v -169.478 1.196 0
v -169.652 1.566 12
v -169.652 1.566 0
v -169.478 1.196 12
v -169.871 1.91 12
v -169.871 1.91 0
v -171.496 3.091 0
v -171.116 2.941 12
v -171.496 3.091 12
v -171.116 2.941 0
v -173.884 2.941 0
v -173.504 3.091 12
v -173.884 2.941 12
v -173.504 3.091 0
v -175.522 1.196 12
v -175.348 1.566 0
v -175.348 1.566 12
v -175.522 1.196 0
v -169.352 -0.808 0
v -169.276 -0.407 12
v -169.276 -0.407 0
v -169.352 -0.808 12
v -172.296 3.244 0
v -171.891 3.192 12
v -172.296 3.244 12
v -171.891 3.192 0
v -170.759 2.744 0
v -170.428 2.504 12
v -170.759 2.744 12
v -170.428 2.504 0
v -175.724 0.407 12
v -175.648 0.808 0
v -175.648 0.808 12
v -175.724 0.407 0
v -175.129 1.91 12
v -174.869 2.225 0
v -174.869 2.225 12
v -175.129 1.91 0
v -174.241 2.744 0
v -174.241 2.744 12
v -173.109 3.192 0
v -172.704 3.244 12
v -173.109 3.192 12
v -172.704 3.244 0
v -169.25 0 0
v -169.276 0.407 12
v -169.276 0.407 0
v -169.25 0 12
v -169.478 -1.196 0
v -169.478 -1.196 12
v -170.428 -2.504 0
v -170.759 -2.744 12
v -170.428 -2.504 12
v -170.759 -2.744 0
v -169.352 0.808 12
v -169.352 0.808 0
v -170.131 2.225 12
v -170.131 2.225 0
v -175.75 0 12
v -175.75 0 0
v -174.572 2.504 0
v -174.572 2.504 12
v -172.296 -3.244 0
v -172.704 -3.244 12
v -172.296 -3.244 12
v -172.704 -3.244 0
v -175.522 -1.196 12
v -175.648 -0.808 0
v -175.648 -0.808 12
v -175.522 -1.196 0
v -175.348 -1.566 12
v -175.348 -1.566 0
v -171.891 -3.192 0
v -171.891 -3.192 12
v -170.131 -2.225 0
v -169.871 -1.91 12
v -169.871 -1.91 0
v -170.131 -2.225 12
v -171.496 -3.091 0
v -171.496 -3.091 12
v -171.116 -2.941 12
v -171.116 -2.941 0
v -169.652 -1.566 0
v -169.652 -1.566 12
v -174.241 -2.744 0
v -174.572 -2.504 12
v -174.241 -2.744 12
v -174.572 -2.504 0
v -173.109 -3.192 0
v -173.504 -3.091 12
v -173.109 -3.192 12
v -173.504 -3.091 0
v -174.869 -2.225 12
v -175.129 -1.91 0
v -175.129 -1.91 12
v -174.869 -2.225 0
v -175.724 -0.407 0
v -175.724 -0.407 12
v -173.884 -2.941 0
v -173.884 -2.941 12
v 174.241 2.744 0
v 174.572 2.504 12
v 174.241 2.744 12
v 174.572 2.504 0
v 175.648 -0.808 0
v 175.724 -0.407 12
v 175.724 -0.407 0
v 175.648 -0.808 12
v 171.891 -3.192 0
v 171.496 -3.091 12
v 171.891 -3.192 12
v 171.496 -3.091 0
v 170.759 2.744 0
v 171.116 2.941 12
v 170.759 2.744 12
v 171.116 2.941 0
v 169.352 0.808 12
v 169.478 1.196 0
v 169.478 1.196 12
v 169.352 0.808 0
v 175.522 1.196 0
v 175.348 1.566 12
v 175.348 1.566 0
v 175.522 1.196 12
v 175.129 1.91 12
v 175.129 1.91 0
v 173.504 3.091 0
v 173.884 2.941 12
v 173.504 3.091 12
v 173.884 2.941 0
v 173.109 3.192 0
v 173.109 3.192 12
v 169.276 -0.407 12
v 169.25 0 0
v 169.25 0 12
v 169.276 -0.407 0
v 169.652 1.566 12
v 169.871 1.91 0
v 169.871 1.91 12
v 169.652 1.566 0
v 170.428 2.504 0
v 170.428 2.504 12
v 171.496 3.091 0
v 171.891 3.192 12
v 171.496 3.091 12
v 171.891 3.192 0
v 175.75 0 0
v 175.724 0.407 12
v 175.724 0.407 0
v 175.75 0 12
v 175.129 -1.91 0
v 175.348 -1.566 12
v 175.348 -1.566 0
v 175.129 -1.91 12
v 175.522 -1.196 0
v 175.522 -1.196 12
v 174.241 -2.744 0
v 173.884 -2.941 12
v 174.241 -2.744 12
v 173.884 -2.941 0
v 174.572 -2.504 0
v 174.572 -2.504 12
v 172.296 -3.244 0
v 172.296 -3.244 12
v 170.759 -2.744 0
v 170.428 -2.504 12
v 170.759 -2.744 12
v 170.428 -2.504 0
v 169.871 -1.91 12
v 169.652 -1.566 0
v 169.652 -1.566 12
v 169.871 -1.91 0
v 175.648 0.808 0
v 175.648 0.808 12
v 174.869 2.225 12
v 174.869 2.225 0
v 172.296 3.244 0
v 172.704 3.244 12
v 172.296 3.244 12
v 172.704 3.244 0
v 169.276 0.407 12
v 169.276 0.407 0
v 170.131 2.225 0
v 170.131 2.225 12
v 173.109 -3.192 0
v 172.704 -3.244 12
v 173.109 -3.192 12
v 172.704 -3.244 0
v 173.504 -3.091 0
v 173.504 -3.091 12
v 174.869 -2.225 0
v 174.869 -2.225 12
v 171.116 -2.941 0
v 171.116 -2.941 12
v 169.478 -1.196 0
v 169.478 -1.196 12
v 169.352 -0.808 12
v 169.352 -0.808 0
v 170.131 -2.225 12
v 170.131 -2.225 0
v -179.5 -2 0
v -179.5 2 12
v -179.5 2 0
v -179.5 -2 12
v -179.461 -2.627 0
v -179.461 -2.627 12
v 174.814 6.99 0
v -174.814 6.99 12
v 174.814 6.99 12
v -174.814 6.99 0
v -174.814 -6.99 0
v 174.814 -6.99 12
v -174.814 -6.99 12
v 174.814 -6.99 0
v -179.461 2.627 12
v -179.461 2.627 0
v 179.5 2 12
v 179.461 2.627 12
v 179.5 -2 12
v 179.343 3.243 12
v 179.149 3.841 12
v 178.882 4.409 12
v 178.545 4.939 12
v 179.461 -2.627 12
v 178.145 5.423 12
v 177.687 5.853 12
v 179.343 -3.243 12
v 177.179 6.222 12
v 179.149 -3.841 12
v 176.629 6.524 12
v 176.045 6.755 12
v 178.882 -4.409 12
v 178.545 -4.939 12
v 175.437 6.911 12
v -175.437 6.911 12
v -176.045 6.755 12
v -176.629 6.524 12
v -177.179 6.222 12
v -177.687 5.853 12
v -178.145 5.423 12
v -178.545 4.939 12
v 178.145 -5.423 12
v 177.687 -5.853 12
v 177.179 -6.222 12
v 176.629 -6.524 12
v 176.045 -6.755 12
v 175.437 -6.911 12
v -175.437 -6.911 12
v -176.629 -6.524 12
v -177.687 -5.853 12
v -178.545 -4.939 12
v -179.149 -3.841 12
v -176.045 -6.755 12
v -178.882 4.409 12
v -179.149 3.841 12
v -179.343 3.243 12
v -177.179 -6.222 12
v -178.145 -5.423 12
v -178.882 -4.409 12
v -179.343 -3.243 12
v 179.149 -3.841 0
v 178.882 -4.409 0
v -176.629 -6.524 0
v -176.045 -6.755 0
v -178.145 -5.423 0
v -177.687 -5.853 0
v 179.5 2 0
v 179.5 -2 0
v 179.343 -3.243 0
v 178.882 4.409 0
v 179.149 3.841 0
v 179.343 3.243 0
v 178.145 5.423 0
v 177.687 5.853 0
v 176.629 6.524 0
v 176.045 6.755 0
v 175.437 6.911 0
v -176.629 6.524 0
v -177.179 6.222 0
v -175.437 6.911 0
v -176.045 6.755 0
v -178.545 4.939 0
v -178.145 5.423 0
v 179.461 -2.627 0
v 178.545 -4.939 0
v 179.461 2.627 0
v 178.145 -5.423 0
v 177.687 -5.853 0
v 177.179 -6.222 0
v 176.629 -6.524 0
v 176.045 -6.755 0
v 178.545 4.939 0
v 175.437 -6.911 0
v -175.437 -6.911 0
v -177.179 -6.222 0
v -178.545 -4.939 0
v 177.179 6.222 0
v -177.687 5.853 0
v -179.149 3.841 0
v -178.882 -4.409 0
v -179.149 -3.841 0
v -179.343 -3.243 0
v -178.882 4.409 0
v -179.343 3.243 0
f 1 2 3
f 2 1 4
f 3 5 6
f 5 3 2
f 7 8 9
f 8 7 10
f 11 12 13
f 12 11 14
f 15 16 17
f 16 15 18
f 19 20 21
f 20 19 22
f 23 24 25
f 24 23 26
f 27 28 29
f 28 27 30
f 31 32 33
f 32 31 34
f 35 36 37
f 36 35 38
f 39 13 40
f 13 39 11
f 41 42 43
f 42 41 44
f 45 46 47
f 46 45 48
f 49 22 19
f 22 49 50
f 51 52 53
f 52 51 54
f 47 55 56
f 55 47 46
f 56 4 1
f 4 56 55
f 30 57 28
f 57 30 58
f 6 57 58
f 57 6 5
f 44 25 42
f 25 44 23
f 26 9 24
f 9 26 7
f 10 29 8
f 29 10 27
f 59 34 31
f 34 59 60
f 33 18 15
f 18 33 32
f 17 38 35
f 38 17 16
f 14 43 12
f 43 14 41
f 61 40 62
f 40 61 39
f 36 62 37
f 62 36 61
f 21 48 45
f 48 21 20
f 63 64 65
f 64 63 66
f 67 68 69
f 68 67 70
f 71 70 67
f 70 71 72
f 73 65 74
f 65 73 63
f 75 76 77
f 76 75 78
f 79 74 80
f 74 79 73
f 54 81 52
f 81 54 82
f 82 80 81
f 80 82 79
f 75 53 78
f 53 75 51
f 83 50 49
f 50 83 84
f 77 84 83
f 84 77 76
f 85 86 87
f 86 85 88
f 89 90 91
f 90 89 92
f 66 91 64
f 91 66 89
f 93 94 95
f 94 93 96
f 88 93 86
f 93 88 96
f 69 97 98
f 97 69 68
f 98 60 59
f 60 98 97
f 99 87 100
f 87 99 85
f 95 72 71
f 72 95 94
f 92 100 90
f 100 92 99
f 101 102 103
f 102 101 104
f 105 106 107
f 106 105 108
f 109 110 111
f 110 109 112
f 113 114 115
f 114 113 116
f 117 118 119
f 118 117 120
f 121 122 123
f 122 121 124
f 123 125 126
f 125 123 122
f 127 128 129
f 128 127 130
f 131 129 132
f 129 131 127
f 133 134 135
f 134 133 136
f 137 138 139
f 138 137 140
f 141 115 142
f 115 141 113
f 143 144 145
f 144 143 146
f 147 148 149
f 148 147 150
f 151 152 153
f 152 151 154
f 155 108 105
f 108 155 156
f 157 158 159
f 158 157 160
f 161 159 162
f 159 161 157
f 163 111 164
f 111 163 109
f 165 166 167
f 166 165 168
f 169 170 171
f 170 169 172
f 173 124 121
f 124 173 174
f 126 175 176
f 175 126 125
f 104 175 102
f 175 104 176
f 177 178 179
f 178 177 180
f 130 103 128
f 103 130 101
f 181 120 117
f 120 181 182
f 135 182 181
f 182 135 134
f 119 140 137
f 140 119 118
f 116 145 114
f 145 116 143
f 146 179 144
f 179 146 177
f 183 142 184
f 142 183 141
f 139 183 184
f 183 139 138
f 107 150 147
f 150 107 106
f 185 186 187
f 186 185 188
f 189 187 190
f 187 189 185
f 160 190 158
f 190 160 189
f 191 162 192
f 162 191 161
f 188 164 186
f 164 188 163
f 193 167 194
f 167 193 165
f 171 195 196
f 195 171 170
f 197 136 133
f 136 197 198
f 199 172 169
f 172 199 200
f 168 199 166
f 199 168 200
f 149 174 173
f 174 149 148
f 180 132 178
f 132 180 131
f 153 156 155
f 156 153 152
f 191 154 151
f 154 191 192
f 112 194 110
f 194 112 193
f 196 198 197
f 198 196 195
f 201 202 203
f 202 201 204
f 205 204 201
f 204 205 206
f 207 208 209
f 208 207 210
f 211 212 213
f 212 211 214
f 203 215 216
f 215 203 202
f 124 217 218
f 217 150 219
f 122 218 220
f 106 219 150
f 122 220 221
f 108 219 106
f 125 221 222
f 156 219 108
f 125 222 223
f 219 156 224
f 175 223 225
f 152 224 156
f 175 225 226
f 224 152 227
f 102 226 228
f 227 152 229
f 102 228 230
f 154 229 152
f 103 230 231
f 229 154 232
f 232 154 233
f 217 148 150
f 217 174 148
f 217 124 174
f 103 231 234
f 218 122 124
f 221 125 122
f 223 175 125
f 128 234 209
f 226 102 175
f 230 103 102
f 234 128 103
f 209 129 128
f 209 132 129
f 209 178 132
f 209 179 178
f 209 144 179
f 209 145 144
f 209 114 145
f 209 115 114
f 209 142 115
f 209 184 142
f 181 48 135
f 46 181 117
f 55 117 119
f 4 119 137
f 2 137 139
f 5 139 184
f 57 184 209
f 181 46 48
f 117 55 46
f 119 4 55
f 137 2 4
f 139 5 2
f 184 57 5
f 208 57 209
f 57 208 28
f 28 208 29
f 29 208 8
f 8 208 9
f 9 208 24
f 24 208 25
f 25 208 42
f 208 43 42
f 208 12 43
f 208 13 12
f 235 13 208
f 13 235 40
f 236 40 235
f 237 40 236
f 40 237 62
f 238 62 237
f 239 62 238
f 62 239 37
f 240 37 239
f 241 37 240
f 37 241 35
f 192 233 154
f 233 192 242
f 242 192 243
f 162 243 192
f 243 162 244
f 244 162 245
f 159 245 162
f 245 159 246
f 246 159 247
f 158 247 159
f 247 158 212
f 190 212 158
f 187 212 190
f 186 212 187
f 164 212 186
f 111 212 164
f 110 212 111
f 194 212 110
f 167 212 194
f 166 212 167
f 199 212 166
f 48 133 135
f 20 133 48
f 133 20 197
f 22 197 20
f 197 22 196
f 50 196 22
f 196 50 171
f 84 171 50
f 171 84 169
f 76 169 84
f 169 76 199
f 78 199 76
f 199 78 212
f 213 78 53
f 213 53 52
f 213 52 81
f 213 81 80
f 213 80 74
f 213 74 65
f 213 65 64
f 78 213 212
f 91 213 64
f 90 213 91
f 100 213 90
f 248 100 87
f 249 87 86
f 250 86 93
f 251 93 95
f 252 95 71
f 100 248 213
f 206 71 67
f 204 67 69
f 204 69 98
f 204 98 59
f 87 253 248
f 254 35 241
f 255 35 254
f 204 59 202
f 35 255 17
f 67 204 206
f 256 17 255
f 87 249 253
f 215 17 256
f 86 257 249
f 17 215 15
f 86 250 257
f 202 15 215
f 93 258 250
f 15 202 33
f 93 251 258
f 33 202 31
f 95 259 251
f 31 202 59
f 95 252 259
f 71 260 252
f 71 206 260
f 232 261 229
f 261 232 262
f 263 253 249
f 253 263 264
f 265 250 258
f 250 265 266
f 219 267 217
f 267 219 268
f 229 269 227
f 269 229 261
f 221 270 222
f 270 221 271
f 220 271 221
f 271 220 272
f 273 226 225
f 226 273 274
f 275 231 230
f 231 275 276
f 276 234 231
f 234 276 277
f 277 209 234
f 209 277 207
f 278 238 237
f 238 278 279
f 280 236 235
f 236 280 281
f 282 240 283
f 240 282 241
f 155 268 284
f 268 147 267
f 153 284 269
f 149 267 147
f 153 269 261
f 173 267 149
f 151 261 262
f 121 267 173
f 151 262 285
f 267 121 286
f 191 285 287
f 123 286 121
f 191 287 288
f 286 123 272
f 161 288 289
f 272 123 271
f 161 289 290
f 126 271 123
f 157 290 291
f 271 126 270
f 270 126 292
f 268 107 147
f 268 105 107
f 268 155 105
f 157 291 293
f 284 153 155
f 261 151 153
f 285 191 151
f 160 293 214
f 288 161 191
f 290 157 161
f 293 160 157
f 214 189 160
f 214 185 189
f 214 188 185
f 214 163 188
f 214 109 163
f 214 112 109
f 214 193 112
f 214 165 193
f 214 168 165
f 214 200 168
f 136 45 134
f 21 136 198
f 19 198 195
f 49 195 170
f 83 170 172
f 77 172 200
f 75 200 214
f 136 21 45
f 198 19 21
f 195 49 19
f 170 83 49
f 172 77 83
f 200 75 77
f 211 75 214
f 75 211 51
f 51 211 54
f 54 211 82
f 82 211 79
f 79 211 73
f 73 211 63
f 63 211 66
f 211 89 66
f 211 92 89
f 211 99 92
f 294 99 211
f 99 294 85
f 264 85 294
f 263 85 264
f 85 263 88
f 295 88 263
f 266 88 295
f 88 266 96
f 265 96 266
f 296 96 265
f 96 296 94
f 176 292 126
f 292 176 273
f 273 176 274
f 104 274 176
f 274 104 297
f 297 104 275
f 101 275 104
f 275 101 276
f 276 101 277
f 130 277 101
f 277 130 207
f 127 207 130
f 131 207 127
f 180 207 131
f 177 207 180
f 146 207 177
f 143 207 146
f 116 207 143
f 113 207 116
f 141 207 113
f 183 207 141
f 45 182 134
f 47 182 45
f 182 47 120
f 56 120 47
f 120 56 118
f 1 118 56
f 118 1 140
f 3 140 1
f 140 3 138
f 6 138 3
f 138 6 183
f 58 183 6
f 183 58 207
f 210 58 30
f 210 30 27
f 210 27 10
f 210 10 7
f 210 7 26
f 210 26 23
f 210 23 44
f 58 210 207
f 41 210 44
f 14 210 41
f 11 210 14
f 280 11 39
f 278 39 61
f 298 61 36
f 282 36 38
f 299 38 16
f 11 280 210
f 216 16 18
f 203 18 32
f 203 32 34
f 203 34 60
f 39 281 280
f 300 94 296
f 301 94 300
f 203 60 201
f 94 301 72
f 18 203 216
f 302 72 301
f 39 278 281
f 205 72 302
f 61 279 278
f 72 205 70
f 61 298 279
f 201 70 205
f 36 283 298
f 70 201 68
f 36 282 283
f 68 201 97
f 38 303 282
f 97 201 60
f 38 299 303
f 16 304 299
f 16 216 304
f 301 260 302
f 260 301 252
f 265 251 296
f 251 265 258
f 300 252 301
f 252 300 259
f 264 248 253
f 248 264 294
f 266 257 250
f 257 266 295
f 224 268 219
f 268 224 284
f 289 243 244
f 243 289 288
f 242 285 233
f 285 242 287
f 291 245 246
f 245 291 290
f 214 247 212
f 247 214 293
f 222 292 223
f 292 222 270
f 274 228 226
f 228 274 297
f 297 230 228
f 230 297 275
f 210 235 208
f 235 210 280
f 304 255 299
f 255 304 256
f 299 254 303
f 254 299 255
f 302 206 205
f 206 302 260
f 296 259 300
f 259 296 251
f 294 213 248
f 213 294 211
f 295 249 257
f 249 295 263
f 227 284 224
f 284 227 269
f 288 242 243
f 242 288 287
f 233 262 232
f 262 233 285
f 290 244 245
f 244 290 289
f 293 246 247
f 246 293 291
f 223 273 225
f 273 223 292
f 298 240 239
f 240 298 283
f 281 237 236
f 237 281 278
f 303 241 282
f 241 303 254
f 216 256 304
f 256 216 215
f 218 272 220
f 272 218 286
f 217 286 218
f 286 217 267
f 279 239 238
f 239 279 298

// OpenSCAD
$fn = 50;


difference() {
	union() {
		hull() {
			translate(v = [-174.5000000000, 2.0000000000, 0]) {
				cylinder(h = 12, r = 5);
			}
			translate(v = [174.5000000000, 2.0000000000, 0]) {
				cylinder(h = 12, r = 5);
			}
			translate(v = [-174.5000000000, -2.0000000000, 0]) {
				cylinder(h = 12, r = 5);
			}
			translate(v = [174.5000000000, -2.0000000000, 0]) {
				cylinder(h = 12, r = 5);
			}
		}
	}
	union() {
		translate(v = [-172.5000000000, 0.0000000000, -100.0000000000]) {
			cylinder(h = 200, r = 3.2500000000);
		}
		translate(v = [-172.5000000000, 0.0000000000, -100.0000000000]) {
			cylinder(h = 200, r = 3.2500000000);
		}
		translate(v = [172.5000000000, 0.0000000000, -100.0000000000]) {
			cylinder(h = 200, r = 3.2500000000);
		}
		translate(v = [172.5000000000, 0.0000000000, -100.0000000000]) {
			cylinder(h = 200, r = 3.2500000000);
		}
	}
}
